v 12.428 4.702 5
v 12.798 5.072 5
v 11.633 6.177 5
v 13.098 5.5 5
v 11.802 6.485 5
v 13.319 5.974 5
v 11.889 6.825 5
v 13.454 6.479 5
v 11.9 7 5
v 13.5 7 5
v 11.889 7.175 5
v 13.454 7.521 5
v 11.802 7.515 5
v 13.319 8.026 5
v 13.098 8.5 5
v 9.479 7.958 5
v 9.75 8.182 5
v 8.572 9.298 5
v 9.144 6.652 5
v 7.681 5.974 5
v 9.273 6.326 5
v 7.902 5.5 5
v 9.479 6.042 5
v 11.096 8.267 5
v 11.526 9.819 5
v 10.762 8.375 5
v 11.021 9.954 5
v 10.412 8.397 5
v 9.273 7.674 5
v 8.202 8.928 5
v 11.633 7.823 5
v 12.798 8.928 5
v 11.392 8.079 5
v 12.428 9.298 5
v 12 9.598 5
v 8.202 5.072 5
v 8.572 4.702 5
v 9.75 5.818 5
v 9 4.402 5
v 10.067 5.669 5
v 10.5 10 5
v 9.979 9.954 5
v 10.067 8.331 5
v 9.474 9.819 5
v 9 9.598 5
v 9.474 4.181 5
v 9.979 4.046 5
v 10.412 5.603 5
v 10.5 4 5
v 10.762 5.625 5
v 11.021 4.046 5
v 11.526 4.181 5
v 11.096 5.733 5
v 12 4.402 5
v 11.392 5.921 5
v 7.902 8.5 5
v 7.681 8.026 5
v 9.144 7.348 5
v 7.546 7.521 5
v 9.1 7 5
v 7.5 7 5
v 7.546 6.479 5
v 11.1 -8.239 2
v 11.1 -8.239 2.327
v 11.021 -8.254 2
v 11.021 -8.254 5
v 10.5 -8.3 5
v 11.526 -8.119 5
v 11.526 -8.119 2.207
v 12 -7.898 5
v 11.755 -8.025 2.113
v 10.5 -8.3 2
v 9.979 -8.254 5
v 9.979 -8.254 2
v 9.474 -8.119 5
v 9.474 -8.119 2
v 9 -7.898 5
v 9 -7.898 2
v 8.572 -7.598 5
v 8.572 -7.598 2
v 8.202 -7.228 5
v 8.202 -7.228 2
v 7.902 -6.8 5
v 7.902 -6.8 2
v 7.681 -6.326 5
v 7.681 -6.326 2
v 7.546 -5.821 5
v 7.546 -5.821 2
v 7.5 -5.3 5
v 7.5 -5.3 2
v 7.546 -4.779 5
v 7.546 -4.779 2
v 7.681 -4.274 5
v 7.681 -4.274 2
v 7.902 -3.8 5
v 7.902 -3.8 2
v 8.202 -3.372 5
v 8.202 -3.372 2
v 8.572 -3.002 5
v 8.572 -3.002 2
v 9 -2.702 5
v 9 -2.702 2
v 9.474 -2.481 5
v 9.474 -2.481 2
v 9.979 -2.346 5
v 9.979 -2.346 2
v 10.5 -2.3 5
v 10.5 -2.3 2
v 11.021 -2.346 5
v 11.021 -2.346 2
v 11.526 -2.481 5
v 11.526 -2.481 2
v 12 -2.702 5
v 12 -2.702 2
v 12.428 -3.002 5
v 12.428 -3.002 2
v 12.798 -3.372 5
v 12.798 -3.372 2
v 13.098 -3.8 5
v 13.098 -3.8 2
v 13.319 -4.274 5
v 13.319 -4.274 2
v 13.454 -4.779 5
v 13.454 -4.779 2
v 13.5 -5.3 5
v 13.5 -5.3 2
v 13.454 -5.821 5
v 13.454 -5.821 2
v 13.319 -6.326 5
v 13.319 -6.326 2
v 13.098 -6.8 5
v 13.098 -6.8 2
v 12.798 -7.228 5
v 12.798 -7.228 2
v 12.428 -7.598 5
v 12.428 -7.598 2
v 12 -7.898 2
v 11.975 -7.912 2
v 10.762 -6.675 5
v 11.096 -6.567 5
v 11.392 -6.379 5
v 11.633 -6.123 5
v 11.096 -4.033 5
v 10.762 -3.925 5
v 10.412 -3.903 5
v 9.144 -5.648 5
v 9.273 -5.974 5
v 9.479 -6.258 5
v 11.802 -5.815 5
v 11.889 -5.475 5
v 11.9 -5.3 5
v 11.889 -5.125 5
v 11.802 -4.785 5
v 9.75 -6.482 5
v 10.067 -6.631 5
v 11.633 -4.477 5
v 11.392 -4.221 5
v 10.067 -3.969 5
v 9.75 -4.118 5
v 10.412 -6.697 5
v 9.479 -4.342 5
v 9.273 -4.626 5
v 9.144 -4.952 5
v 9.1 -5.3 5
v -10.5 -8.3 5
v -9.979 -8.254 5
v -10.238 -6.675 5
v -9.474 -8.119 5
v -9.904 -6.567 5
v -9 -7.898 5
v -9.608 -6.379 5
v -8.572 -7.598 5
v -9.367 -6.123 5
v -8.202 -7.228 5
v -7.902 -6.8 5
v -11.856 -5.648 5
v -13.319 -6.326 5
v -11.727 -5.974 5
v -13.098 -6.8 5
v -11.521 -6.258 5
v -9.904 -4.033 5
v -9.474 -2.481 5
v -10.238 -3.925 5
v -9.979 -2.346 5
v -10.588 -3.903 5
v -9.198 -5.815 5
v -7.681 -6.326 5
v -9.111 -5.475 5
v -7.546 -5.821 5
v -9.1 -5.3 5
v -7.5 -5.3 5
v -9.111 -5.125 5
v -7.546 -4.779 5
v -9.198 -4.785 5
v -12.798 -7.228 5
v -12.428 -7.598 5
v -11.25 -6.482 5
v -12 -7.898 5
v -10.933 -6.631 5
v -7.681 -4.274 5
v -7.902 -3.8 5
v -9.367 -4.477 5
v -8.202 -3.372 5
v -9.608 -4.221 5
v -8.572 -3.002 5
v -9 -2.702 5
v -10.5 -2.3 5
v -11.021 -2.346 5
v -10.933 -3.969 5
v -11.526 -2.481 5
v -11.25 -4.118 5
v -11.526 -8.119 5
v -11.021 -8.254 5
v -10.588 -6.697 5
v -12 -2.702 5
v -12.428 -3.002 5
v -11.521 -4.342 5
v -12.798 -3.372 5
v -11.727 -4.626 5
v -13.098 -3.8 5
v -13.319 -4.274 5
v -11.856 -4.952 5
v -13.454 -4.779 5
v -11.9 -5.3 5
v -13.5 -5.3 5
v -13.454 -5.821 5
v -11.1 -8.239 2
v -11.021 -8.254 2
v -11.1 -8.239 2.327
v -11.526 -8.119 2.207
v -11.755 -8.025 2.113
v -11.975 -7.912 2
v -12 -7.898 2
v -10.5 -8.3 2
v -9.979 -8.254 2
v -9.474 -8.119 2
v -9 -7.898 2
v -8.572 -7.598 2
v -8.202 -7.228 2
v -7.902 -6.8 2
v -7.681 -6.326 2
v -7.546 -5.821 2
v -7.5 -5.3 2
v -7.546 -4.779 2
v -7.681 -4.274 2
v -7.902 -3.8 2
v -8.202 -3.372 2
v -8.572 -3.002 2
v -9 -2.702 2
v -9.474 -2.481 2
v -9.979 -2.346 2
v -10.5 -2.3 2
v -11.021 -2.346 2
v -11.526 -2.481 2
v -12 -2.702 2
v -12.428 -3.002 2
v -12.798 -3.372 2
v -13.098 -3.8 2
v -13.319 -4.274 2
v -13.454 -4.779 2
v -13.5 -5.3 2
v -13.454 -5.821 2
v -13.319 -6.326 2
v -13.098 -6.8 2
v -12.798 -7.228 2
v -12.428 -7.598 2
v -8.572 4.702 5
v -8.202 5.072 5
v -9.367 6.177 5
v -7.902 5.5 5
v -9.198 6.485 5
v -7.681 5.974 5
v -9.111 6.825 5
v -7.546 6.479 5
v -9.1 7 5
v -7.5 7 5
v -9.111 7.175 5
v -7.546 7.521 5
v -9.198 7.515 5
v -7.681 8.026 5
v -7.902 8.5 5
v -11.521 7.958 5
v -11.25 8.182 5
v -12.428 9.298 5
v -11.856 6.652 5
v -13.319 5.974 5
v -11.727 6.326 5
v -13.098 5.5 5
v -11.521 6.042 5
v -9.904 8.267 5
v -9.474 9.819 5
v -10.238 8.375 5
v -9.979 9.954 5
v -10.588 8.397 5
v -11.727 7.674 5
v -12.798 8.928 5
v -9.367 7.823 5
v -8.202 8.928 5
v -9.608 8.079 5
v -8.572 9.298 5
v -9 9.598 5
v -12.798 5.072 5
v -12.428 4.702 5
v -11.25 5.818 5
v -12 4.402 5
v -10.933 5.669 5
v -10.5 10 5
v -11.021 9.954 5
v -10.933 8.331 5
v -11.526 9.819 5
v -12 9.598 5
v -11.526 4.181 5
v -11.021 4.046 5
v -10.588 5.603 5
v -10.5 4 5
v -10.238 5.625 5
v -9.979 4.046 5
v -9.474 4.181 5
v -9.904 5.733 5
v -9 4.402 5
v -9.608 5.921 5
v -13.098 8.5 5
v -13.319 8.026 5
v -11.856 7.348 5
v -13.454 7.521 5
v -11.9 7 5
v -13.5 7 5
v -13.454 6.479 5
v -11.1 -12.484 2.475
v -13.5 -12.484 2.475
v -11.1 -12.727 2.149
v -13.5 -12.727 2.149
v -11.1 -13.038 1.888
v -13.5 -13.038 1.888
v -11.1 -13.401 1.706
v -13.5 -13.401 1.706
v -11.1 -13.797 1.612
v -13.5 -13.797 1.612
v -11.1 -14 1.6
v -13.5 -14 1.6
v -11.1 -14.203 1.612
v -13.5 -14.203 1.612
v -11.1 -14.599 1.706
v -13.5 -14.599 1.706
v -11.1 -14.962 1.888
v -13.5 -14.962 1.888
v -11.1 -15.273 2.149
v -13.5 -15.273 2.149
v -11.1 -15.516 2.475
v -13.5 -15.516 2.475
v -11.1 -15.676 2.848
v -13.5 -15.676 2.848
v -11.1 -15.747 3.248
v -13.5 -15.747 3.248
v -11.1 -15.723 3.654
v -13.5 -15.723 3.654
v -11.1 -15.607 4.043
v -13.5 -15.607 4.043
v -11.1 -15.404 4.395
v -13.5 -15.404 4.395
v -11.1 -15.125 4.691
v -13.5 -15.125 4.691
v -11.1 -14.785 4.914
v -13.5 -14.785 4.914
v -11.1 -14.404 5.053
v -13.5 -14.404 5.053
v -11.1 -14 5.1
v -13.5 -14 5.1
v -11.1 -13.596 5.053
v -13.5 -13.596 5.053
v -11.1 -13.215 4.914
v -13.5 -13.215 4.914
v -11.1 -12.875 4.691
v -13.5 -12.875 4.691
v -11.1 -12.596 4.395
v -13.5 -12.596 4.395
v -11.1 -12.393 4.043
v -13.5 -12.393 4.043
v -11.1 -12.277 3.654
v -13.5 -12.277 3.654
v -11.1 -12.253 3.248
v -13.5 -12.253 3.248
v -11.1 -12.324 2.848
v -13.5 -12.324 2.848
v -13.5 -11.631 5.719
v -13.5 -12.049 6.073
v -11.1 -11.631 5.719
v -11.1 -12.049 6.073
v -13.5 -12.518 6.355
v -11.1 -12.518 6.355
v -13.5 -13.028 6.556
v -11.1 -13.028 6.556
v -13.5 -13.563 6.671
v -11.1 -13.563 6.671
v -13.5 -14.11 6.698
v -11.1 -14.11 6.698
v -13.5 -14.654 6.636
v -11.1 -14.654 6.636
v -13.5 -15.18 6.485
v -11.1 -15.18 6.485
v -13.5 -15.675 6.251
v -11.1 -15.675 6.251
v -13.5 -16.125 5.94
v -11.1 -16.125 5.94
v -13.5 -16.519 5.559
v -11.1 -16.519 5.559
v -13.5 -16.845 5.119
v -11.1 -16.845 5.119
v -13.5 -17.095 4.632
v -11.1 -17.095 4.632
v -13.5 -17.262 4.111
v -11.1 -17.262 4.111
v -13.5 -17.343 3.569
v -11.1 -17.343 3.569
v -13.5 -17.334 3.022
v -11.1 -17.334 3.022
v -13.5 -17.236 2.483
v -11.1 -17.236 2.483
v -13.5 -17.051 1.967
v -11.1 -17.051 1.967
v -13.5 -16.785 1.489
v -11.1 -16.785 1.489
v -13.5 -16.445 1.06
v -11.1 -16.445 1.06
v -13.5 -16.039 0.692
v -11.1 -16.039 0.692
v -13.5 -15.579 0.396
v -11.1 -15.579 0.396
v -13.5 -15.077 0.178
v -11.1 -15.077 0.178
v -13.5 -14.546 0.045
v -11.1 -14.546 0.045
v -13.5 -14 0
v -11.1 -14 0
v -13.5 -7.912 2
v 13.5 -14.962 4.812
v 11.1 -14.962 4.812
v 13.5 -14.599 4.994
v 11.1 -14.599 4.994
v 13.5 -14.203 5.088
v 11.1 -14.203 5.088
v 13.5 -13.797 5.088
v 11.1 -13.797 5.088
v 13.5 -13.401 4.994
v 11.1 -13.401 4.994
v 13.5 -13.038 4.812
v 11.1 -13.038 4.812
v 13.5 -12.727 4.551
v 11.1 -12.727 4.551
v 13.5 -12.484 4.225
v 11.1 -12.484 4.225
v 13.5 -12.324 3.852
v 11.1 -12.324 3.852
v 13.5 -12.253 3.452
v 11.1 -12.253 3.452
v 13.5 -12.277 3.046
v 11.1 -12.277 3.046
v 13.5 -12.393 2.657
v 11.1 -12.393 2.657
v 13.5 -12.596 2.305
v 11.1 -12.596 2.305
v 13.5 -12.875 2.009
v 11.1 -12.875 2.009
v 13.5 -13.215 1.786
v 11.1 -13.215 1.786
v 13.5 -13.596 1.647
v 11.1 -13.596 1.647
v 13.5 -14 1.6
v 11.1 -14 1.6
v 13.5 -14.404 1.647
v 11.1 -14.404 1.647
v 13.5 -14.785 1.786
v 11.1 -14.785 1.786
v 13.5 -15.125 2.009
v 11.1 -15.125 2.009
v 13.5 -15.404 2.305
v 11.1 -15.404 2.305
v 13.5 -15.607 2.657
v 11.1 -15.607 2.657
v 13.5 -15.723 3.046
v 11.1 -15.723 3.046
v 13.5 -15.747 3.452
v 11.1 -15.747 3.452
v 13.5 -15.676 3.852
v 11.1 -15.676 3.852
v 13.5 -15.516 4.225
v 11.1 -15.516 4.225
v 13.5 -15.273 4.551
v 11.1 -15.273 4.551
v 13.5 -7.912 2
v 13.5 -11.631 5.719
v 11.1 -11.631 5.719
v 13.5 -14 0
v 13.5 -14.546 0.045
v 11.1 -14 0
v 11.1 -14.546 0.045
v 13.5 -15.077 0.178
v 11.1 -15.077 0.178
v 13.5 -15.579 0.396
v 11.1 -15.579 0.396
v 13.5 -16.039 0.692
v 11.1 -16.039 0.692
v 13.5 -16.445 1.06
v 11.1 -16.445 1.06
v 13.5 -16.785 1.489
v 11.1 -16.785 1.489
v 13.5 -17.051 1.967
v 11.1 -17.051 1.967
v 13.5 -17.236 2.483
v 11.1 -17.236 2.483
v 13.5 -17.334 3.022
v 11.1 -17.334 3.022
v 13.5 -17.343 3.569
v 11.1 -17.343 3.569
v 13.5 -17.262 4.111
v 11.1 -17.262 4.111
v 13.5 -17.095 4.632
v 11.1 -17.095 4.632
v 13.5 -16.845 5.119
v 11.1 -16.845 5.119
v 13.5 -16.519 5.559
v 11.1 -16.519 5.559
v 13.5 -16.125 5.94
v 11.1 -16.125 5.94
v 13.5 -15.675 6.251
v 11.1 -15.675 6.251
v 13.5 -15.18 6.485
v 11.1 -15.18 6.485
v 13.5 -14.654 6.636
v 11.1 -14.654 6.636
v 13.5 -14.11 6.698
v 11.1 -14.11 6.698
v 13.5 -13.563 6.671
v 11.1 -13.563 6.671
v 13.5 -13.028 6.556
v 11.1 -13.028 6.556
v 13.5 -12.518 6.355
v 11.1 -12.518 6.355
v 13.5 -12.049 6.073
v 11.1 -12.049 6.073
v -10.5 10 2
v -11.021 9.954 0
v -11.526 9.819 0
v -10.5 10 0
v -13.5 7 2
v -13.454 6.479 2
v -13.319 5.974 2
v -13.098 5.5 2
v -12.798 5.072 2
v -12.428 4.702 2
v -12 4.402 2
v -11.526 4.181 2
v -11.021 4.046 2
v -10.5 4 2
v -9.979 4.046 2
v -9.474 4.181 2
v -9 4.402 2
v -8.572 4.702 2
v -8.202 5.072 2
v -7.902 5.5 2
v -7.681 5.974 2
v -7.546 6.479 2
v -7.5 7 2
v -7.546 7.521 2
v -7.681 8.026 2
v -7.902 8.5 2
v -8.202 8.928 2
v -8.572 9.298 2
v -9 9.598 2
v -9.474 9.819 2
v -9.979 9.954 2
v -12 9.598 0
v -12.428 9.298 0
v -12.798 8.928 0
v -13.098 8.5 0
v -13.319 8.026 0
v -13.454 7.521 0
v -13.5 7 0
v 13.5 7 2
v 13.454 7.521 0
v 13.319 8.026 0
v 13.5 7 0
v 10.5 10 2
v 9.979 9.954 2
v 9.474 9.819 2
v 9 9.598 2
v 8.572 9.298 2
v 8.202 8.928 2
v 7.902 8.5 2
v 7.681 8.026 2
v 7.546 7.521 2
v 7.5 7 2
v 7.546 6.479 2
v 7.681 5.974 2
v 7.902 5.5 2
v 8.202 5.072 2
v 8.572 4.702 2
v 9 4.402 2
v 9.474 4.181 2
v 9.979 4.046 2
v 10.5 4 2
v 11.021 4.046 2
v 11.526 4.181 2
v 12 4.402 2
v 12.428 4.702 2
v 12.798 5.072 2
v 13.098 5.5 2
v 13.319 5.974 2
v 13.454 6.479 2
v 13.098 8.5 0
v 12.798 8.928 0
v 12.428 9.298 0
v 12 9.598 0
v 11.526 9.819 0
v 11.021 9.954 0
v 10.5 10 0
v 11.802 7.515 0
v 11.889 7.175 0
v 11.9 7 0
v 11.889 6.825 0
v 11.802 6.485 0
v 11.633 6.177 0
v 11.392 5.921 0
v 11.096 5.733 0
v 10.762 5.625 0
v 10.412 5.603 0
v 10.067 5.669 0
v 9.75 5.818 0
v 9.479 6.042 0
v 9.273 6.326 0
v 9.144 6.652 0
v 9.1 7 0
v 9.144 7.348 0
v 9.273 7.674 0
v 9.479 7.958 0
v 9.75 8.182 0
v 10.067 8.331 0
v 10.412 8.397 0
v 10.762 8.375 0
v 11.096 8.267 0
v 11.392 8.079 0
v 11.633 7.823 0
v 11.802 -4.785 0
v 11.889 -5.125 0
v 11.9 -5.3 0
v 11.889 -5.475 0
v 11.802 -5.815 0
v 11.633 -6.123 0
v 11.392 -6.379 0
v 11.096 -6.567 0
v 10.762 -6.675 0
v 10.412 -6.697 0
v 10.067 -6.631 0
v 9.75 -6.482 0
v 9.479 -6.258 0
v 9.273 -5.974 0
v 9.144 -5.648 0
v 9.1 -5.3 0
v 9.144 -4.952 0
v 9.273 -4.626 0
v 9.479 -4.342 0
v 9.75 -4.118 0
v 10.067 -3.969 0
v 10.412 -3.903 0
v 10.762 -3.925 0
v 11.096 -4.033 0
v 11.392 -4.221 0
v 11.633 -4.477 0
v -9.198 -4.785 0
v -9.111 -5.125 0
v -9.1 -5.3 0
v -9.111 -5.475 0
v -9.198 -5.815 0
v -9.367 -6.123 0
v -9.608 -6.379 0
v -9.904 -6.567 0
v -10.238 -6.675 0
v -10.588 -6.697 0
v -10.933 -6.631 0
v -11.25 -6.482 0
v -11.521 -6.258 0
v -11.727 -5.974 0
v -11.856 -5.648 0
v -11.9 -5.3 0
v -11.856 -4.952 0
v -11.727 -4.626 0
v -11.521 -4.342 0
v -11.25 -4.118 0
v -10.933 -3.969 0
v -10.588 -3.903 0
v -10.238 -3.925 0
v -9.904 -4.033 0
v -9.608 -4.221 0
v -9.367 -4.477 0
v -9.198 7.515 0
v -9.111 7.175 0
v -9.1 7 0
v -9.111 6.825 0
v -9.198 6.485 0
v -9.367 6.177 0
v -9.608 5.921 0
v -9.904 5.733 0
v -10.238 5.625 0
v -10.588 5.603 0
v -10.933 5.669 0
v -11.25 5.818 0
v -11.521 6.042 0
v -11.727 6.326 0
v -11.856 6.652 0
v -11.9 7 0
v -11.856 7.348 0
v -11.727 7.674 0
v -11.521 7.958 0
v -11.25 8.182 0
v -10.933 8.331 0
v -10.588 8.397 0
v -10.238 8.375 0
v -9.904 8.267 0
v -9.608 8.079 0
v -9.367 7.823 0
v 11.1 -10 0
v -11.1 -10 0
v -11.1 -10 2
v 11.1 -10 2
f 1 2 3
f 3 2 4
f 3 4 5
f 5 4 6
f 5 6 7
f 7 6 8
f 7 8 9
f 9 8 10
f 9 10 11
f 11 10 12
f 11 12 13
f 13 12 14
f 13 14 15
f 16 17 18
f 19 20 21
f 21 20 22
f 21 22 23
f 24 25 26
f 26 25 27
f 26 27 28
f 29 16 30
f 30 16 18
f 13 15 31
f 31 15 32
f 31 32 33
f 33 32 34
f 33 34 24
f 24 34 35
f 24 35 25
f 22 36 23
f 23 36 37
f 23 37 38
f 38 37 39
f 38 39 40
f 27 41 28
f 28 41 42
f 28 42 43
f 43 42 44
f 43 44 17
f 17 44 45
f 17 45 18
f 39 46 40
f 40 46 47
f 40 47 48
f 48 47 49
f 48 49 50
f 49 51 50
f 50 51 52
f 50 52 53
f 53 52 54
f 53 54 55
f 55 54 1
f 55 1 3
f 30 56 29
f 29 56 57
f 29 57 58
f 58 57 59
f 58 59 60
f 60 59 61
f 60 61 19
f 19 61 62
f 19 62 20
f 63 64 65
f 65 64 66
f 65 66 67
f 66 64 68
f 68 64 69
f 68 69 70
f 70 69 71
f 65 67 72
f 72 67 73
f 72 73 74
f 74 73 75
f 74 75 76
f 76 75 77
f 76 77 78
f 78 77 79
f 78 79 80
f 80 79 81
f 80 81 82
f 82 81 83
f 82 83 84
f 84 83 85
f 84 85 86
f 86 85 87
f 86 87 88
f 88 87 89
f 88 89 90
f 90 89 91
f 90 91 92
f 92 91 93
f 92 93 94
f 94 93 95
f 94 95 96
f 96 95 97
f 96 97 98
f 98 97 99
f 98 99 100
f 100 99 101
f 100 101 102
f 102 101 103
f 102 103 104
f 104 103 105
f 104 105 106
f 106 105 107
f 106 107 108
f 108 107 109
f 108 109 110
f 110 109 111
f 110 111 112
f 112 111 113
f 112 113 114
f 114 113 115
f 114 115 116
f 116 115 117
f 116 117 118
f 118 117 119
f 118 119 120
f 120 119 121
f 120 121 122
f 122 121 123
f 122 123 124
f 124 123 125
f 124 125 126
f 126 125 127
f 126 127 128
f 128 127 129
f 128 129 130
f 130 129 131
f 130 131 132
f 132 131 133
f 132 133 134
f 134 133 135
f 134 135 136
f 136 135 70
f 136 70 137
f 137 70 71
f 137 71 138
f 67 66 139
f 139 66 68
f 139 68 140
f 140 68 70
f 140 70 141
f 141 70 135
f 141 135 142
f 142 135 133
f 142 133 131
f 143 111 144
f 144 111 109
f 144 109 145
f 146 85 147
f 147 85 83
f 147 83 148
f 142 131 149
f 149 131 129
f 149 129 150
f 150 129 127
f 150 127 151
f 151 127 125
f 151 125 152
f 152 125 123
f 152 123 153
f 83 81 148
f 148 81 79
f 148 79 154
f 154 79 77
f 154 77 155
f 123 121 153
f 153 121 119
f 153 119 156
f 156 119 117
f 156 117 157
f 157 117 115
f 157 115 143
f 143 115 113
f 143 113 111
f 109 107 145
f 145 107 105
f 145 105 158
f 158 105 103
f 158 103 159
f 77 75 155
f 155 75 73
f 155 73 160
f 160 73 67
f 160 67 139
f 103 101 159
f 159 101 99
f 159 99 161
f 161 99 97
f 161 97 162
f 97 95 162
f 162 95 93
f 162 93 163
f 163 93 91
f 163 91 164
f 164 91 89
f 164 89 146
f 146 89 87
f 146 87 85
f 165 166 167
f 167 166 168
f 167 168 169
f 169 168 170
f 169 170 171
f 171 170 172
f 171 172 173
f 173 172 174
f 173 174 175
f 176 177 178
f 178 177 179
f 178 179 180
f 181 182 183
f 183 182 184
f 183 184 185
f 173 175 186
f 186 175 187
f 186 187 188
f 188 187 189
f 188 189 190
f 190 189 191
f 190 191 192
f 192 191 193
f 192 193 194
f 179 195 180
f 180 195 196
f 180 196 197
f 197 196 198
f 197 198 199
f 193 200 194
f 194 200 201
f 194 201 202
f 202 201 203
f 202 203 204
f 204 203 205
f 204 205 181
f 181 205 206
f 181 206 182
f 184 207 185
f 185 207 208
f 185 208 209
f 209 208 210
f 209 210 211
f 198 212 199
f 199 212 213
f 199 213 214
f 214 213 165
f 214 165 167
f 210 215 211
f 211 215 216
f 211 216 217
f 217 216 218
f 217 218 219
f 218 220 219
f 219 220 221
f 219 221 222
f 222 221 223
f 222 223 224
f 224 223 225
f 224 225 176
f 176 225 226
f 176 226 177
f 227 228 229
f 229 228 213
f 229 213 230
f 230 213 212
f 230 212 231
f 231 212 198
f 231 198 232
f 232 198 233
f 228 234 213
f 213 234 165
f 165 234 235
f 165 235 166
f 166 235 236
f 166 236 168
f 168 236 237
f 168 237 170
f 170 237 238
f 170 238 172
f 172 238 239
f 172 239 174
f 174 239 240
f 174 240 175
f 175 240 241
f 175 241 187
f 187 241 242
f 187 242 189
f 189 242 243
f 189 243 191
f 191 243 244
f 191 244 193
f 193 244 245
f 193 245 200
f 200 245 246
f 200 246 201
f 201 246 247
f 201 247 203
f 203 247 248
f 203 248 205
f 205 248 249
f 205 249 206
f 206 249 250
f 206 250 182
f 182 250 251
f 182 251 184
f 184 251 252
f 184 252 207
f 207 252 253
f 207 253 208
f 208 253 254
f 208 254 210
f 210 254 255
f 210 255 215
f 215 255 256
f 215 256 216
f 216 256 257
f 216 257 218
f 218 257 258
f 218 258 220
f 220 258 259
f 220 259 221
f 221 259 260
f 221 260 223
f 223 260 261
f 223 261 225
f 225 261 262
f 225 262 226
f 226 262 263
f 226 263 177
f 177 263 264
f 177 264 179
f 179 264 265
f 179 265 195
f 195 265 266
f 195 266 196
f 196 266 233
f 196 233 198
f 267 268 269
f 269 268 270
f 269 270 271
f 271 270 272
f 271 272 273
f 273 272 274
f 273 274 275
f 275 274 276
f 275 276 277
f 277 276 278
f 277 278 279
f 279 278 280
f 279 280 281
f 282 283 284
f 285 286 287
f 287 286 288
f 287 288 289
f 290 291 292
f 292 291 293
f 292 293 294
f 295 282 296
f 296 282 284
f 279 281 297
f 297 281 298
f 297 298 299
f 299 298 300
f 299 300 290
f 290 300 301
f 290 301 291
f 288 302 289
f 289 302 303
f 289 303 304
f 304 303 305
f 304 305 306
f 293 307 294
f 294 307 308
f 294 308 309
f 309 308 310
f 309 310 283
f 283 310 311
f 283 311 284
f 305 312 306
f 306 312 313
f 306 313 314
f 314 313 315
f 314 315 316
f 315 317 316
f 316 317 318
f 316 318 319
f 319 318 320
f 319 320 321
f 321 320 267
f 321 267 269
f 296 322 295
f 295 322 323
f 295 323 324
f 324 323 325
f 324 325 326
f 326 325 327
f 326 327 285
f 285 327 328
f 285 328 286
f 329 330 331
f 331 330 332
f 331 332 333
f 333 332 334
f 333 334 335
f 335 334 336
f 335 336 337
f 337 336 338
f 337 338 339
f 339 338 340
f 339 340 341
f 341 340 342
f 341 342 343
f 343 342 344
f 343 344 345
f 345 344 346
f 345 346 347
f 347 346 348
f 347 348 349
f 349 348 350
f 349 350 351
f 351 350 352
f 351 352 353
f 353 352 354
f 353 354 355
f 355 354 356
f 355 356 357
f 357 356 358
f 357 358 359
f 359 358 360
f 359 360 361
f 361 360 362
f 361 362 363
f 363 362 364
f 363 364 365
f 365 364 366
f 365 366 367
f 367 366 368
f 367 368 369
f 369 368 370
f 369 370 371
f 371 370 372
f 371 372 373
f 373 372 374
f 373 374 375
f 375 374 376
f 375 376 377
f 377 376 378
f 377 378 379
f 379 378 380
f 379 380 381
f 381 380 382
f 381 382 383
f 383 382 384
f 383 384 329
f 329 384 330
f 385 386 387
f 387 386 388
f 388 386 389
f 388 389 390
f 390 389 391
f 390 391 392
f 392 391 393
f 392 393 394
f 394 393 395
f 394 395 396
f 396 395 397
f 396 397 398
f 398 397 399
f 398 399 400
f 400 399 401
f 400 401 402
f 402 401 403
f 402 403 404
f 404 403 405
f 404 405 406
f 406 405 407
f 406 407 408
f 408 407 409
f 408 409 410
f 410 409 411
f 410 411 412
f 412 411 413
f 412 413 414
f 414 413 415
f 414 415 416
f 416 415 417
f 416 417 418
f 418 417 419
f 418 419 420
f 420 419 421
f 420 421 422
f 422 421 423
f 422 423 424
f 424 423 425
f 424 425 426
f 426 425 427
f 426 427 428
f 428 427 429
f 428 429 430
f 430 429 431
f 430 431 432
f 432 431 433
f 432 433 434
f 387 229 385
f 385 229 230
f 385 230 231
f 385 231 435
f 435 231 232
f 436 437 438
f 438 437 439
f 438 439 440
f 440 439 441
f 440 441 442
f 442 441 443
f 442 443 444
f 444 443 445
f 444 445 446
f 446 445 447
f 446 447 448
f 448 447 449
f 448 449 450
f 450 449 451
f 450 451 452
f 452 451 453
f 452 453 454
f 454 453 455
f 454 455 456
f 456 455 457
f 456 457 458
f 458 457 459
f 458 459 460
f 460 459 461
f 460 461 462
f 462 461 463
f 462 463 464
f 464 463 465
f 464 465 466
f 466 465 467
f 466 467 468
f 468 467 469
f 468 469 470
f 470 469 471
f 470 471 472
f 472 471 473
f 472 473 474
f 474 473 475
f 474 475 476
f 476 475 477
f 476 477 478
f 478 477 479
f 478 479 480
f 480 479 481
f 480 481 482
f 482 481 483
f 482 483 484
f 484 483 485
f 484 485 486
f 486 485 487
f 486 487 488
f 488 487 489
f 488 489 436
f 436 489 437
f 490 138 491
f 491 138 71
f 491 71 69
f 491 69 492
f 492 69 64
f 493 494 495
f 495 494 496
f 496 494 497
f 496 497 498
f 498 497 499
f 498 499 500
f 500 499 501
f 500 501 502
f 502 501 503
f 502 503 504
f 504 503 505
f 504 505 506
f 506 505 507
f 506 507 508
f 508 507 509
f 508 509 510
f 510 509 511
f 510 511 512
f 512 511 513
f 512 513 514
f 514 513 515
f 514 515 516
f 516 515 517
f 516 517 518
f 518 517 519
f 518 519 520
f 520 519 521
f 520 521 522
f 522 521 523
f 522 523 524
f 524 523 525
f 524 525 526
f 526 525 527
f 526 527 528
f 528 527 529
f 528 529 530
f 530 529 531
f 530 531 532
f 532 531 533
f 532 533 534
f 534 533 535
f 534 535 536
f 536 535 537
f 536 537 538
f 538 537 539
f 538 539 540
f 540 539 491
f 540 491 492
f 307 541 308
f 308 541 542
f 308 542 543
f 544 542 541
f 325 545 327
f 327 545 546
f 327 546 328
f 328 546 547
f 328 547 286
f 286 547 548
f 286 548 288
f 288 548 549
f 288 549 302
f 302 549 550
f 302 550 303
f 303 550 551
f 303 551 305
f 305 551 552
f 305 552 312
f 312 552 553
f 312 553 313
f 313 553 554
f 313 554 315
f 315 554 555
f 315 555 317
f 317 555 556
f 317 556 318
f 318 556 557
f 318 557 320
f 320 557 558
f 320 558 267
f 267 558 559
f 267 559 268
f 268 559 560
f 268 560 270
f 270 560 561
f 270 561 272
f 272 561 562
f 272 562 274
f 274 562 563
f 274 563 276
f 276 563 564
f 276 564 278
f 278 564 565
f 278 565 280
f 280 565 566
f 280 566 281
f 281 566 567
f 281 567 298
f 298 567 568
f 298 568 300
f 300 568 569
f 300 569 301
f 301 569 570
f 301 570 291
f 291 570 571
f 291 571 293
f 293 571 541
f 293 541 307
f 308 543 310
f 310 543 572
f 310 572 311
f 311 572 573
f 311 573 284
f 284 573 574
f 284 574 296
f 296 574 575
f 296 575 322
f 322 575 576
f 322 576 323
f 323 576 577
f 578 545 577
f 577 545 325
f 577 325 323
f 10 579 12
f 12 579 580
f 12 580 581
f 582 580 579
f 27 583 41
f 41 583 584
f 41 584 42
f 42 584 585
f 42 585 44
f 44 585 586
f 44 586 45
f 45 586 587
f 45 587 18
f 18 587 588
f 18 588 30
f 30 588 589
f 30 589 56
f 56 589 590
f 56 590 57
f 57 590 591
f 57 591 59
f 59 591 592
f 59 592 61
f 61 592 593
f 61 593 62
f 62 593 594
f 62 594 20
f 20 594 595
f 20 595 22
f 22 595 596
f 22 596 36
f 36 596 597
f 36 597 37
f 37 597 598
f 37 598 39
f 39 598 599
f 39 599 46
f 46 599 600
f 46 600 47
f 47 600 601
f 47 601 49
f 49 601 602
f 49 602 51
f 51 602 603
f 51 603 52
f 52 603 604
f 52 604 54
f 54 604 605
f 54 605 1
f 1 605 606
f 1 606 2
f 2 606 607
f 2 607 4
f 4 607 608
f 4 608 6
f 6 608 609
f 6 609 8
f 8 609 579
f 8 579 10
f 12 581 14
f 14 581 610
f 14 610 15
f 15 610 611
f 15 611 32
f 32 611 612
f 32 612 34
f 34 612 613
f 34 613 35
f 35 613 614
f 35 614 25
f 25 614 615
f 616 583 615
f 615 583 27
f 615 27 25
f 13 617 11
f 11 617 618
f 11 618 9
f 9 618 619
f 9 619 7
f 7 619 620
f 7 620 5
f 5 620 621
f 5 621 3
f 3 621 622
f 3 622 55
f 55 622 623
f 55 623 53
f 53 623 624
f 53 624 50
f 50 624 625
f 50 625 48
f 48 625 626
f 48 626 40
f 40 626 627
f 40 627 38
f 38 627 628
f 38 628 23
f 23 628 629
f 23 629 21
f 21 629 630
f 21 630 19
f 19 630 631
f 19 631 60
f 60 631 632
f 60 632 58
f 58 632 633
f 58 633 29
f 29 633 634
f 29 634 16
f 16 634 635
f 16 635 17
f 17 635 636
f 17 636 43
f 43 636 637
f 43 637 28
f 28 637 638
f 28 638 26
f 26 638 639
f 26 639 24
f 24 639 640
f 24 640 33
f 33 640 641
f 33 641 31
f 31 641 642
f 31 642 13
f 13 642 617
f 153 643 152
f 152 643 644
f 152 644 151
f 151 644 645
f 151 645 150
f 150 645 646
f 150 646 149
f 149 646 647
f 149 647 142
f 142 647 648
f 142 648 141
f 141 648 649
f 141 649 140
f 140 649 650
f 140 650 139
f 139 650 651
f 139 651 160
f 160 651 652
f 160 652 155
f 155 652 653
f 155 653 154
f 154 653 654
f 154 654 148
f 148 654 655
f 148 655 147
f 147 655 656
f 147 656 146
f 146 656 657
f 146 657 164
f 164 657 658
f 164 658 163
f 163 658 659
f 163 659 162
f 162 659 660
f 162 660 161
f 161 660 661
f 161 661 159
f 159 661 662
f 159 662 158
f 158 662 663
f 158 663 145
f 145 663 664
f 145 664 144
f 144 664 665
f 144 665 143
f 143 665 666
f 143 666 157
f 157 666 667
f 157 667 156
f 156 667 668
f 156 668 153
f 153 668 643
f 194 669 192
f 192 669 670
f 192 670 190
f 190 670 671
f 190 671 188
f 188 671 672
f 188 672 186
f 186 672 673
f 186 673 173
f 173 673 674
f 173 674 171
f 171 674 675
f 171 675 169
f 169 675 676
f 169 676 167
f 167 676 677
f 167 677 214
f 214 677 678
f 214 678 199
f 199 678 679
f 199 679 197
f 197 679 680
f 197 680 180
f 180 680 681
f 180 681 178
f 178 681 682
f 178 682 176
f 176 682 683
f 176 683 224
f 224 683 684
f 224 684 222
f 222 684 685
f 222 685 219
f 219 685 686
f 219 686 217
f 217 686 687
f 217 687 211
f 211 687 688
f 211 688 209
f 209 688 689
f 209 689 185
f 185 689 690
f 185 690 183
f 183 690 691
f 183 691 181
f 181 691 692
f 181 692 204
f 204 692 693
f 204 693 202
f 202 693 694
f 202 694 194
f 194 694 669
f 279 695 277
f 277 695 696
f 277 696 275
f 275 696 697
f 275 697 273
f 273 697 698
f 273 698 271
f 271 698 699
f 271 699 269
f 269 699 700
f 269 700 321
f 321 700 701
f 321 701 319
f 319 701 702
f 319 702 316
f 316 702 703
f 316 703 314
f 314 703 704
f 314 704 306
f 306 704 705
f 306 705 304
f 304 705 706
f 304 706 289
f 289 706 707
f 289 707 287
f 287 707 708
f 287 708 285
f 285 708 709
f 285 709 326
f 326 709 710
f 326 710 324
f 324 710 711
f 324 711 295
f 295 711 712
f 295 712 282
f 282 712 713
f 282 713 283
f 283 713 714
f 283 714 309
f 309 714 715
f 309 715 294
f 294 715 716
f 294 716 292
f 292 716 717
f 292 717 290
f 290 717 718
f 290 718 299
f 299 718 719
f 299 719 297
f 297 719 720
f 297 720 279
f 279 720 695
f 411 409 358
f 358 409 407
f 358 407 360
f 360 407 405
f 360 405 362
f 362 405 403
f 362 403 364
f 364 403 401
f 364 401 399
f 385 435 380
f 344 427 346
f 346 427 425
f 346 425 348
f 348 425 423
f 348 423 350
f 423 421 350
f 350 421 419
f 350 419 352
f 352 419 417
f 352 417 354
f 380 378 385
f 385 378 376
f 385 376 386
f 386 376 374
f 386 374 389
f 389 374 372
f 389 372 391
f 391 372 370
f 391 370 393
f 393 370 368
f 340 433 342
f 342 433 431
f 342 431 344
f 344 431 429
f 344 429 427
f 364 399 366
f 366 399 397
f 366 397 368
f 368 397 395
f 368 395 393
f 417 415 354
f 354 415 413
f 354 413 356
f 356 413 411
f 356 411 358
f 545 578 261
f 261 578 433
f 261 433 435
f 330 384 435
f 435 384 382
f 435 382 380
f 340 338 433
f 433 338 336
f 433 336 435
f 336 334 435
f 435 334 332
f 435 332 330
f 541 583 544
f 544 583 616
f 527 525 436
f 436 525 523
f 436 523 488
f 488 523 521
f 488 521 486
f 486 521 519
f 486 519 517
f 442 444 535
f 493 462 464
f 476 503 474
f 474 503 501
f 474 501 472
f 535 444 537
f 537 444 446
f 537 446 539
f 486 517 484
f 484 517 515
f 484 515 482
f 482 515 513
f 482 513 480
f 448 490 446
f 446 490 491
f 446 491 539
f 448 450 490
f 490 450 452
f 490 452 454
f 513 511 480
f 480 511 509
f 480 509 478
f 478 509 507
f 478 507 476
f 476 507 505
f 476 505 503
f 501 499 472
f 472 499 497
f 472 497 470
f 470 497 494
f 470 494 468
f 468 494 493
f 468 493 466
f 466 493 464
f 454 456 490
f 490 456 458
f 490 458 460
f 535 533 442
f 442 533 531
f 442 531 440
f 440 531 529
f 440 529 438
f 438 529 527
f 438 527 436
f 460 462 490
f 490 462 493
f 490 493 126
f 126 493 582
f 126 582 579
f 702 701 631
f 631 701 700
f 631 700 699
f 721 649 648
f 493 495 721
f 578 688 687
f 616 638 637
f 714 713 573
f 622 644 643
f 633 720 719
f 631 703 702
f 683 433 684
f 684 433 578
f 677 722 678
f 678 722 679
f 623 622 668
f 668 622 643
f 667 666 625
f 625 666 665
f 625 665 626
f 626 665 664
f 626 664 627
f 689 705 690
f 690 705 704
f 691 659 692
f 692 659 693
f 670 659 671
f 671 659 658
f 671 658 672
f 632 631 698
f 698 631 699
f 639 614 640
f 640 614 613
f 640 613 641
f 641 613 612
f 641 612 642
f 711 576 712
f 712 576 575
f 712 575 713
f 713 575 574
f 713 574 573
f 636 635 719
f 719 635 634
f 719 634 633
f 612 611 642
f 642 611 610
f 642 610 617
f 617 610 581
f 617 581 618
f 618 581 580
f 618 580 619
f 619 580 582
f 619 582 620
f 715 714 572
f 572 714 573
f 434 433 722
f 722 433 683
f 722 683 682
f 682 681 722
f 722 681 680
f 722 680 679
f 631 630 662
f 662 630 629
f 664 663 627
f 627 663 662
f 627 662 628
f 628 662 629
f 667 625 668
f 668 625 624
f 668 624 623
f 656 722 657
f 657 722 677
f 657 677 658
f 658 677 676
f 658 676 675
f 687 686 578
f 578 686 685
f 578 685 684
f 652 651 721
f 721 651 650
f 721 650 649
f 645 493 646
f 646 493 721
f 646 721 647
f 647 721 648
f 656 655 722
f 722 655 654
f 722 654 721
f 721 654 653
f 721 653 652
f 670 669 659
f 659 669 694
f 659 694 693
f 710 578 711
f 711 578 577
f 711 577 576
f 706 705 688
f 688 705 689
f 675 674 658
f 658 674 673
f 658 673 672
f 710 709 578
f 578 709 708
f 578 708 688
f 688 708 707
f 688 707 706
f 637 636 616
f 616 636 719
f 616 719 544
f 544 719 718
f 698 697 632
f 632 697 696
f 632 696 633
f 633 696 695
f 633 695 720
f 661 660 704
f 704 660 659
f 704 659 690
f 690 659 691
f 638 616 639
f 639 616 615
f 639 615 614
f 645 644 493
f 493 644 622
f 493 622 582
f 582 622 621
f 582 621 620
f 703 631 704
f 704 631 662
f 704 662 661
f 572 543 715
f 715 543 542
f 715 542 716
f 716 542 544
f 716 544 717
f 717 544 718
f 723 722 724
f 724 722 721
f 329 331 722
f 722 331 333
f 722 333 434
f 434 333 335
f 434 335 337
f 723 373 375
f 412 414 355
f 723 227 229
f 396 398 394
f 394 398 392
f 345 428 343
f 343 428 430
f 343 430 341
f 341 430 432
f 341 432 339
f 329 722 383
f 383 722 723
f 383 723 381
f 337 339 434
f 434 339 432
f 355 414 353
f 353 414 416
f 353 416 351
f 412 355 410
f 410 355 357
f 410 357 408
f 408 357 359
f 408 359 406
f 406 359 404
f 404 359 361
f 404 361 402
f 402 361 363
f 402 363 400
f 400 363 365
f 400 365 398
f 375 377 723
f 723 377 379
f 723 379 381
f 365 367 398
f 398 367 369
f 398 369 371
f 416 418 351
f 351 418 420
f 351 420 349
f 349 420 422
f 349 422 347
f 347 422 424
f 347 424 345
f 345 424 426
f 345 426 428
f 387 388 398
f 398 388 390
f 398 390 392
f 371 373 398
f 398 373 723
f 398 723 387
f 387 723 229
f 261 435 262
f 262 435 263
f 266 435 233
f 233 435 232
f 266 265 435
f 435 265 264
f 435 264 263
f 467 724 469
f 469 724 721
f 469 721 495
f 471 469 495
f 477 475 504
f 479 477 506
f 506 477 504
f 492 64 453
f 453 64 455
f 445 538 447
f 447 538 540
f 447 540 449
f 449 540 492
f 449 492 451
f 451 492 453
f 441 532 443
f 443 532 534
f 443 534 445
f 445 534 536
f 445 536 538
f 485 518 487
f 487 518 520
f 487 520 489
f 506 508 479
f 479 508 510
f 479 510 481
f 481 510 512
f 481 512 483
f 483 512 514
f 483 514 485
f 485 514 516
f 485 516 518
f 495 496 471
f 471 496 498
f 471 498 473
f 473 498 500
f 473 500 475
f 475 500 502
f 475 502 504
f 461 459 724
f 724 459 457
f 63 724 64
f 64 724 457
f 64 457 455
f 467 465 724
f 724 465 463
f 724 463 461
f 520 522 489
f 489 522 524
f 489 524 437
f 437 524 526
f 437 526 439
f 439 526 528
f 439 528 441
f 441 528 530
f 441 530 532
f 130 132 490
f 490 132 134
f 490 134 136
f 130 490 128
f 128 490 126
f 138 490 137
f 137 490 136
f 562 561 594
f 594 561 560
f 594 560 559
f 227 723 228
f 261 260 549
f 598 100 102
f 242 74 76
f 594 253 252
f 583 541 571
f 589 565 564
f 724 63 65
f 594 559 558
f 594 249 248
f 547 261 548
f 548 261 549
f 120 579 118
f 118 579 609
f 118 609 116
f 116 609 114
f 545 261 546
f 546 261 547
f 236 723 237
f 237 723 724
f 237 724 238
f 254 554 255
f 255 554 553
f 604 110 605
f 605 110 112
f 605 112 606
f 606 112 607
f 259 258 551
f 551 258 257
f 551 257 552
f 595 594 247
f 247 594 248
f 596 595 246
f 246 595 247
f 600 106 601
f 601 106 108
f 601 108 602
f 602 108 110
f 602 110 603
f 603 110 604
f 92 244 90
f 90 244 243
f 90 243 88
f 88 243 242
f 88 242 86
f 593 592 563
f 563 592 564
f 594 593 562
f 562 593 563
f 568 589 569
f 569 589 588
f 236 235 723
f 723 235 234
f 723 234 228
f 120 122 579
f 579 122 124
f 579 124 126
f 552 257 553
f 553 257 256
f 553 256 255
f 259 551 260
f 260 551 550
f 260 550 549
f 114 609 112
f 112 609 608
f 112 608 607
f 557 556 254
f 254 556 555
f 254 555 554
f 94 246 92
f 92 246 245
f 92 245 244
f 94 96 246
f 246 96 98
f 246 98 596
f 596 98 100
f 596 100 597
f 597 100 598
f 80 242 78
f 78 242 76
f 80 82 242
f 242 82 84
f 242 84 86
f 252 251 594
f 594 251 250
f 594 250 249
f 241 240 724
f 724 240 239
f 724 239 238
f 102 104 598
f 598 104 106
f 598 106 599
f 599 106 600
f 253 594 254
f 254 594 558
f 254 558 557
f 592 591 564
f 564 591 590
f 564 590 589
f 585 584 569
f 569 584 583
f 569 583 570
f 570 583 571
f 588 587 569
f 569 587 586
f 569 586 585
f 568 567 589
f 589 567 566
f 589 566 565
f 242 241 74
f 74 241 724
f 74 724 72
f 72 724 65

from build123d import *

# Parameters (mm, degrees)
SCHIZZO1_W                   = 27
SCHIZZO1_H                   = 20
SCHIZZO1_R                   = 1.4
ESTRUSIONE_ESTRUSIONE1_DEPTH = 2
RACCORDO1_R                  = 3
SCHIZZO2_R                   = 1.75
ESTRUSIONE_ESTRUSIONE2_DEPTH = 2.4
SCHIZZO3_R                   = 3
SCHIZZO3_R_2                 = 1.4
ESTRUSIONE_ESTRUSIONE3_DEPTH = 3


with BuildPart() as part:
    # Schizzo1 → Estrusione-Estrusione1 (new body)
    with BuildSketch(Plane.XY):
        Rectangle(SCHIZZO1_W, SCHIZZO1_H)
        with Locations((-10.5, 7)):
            Circle(SCHIZZO1_R, mode=Mode.SUBTRACT)
        with Locations((-10.5, -5.3)):
            Circle(SCHIZZO1_R, mode=Mode.SUBTRACT)
        with Locations((10.5, -5.3)):
            Circle(SCHIZZO1_R, mode=Mode.SUBTRACT)
        with Locations((10.5, 7)):
            Circle(SCHIZZO1_R, mode=Mode.SUBTRACT)
    extrude(amount=ESTRUSIONE_ESTRUSIONE1_DEPTH)

    # Raccordo1
    raccordo1_edges = [part.edges().sort_by_distance(p)[0] for p in [
        (-13.5, 10, 1),
        (13.5, 10, 1),
    ]]
    fillet(raccordo1_edges, radius=RACCORDO1_R)

    # Schizzo2 → Estrusione-Estrusione2 (add)
    with BuildSketch(Plane(origin=(13.5, 0, 0), x_dir=(0, 0, -1), z_dir=(1, 0, 0))):
        with BuildLine():
            Line((0, -10), (0, -14))
            ThreePointArc((0, -14), (-4.631989498, -17.094996434), (-5.718807717, -11.631192283))
            Line((-5.718807717, -11.631192283), (-2, -7.912384566))
            Line((-2, -7.912384566), (-2, -10))
            Line((-2, -10), (0, -10))
        make_face()
        with Locations((-3.35, -14)):
            Circle(SCHIZZO2_R, mode=Mode.SUBTRACT)
    estrusione_estrusione2 = extrude(amount=-ESTRUSIONE_ESTRUSIONE2_DEPTH)

    # Specchia1: Estrusione-Estrusione2 across plane
    add(estrusione_estrusione2.mirror(Plane(origin=(0, 0, 0), x_dir=(0, 0, 1), z_dir=(1, 0, 0))))

    # Schizzo3 → Estrusione-Estrusione3 (add)
    # profile 1 of 4: a face of its own
    with BuildSketch(Plane.XY.offset(2)):
        with Locations(Location((-10.5, 7, 0), (0, 0, 180))):
            Circle(SCHIZZO3_R)
        with Locations((-10.5, 7)):
            Circle(SCHIZZO3_R_2, mode=Mode.SUBTRACT)
    # profile 2 of 4: a face of its own
    with BuildSketch(Plane.XY.offset(2)):
        with Locations(Location((-10.5, -5.3, 0), (0, 0, 180))):
            Circle(SCHIZZO3_R)
        with Locations((-10.5, -5.3)):
            Circle(SCHIZZO3_R_2, mode=Mode.SUBTRACT)
    # profile 3 of 4: a face of its own
    with BuildSketch(Plane.XY.offset(2)):
        with Locations((10.5, -5.3)):
            Circle(SCHIZZO3_R)
        with Locations((10.5, -5.3)):
            Circle(SCHIZZO3_R_2, mode=Mode.SUBTRACT)
    # profile 4 of 4: a face of its own
    with BuildSketch(Plane.XY.offset(2)):
        with Locations((10.5, 7)):
            Circle(SCHIZZO3_R)
        with Locations((10.5, 7)):
            Circle(SCHIZZO3_R_2, mode=Mode.SUBTRACT)
    extrude(amount=ESTRUSIONE_ESTRUSIONE3_DEPTH)


solid = part.part
